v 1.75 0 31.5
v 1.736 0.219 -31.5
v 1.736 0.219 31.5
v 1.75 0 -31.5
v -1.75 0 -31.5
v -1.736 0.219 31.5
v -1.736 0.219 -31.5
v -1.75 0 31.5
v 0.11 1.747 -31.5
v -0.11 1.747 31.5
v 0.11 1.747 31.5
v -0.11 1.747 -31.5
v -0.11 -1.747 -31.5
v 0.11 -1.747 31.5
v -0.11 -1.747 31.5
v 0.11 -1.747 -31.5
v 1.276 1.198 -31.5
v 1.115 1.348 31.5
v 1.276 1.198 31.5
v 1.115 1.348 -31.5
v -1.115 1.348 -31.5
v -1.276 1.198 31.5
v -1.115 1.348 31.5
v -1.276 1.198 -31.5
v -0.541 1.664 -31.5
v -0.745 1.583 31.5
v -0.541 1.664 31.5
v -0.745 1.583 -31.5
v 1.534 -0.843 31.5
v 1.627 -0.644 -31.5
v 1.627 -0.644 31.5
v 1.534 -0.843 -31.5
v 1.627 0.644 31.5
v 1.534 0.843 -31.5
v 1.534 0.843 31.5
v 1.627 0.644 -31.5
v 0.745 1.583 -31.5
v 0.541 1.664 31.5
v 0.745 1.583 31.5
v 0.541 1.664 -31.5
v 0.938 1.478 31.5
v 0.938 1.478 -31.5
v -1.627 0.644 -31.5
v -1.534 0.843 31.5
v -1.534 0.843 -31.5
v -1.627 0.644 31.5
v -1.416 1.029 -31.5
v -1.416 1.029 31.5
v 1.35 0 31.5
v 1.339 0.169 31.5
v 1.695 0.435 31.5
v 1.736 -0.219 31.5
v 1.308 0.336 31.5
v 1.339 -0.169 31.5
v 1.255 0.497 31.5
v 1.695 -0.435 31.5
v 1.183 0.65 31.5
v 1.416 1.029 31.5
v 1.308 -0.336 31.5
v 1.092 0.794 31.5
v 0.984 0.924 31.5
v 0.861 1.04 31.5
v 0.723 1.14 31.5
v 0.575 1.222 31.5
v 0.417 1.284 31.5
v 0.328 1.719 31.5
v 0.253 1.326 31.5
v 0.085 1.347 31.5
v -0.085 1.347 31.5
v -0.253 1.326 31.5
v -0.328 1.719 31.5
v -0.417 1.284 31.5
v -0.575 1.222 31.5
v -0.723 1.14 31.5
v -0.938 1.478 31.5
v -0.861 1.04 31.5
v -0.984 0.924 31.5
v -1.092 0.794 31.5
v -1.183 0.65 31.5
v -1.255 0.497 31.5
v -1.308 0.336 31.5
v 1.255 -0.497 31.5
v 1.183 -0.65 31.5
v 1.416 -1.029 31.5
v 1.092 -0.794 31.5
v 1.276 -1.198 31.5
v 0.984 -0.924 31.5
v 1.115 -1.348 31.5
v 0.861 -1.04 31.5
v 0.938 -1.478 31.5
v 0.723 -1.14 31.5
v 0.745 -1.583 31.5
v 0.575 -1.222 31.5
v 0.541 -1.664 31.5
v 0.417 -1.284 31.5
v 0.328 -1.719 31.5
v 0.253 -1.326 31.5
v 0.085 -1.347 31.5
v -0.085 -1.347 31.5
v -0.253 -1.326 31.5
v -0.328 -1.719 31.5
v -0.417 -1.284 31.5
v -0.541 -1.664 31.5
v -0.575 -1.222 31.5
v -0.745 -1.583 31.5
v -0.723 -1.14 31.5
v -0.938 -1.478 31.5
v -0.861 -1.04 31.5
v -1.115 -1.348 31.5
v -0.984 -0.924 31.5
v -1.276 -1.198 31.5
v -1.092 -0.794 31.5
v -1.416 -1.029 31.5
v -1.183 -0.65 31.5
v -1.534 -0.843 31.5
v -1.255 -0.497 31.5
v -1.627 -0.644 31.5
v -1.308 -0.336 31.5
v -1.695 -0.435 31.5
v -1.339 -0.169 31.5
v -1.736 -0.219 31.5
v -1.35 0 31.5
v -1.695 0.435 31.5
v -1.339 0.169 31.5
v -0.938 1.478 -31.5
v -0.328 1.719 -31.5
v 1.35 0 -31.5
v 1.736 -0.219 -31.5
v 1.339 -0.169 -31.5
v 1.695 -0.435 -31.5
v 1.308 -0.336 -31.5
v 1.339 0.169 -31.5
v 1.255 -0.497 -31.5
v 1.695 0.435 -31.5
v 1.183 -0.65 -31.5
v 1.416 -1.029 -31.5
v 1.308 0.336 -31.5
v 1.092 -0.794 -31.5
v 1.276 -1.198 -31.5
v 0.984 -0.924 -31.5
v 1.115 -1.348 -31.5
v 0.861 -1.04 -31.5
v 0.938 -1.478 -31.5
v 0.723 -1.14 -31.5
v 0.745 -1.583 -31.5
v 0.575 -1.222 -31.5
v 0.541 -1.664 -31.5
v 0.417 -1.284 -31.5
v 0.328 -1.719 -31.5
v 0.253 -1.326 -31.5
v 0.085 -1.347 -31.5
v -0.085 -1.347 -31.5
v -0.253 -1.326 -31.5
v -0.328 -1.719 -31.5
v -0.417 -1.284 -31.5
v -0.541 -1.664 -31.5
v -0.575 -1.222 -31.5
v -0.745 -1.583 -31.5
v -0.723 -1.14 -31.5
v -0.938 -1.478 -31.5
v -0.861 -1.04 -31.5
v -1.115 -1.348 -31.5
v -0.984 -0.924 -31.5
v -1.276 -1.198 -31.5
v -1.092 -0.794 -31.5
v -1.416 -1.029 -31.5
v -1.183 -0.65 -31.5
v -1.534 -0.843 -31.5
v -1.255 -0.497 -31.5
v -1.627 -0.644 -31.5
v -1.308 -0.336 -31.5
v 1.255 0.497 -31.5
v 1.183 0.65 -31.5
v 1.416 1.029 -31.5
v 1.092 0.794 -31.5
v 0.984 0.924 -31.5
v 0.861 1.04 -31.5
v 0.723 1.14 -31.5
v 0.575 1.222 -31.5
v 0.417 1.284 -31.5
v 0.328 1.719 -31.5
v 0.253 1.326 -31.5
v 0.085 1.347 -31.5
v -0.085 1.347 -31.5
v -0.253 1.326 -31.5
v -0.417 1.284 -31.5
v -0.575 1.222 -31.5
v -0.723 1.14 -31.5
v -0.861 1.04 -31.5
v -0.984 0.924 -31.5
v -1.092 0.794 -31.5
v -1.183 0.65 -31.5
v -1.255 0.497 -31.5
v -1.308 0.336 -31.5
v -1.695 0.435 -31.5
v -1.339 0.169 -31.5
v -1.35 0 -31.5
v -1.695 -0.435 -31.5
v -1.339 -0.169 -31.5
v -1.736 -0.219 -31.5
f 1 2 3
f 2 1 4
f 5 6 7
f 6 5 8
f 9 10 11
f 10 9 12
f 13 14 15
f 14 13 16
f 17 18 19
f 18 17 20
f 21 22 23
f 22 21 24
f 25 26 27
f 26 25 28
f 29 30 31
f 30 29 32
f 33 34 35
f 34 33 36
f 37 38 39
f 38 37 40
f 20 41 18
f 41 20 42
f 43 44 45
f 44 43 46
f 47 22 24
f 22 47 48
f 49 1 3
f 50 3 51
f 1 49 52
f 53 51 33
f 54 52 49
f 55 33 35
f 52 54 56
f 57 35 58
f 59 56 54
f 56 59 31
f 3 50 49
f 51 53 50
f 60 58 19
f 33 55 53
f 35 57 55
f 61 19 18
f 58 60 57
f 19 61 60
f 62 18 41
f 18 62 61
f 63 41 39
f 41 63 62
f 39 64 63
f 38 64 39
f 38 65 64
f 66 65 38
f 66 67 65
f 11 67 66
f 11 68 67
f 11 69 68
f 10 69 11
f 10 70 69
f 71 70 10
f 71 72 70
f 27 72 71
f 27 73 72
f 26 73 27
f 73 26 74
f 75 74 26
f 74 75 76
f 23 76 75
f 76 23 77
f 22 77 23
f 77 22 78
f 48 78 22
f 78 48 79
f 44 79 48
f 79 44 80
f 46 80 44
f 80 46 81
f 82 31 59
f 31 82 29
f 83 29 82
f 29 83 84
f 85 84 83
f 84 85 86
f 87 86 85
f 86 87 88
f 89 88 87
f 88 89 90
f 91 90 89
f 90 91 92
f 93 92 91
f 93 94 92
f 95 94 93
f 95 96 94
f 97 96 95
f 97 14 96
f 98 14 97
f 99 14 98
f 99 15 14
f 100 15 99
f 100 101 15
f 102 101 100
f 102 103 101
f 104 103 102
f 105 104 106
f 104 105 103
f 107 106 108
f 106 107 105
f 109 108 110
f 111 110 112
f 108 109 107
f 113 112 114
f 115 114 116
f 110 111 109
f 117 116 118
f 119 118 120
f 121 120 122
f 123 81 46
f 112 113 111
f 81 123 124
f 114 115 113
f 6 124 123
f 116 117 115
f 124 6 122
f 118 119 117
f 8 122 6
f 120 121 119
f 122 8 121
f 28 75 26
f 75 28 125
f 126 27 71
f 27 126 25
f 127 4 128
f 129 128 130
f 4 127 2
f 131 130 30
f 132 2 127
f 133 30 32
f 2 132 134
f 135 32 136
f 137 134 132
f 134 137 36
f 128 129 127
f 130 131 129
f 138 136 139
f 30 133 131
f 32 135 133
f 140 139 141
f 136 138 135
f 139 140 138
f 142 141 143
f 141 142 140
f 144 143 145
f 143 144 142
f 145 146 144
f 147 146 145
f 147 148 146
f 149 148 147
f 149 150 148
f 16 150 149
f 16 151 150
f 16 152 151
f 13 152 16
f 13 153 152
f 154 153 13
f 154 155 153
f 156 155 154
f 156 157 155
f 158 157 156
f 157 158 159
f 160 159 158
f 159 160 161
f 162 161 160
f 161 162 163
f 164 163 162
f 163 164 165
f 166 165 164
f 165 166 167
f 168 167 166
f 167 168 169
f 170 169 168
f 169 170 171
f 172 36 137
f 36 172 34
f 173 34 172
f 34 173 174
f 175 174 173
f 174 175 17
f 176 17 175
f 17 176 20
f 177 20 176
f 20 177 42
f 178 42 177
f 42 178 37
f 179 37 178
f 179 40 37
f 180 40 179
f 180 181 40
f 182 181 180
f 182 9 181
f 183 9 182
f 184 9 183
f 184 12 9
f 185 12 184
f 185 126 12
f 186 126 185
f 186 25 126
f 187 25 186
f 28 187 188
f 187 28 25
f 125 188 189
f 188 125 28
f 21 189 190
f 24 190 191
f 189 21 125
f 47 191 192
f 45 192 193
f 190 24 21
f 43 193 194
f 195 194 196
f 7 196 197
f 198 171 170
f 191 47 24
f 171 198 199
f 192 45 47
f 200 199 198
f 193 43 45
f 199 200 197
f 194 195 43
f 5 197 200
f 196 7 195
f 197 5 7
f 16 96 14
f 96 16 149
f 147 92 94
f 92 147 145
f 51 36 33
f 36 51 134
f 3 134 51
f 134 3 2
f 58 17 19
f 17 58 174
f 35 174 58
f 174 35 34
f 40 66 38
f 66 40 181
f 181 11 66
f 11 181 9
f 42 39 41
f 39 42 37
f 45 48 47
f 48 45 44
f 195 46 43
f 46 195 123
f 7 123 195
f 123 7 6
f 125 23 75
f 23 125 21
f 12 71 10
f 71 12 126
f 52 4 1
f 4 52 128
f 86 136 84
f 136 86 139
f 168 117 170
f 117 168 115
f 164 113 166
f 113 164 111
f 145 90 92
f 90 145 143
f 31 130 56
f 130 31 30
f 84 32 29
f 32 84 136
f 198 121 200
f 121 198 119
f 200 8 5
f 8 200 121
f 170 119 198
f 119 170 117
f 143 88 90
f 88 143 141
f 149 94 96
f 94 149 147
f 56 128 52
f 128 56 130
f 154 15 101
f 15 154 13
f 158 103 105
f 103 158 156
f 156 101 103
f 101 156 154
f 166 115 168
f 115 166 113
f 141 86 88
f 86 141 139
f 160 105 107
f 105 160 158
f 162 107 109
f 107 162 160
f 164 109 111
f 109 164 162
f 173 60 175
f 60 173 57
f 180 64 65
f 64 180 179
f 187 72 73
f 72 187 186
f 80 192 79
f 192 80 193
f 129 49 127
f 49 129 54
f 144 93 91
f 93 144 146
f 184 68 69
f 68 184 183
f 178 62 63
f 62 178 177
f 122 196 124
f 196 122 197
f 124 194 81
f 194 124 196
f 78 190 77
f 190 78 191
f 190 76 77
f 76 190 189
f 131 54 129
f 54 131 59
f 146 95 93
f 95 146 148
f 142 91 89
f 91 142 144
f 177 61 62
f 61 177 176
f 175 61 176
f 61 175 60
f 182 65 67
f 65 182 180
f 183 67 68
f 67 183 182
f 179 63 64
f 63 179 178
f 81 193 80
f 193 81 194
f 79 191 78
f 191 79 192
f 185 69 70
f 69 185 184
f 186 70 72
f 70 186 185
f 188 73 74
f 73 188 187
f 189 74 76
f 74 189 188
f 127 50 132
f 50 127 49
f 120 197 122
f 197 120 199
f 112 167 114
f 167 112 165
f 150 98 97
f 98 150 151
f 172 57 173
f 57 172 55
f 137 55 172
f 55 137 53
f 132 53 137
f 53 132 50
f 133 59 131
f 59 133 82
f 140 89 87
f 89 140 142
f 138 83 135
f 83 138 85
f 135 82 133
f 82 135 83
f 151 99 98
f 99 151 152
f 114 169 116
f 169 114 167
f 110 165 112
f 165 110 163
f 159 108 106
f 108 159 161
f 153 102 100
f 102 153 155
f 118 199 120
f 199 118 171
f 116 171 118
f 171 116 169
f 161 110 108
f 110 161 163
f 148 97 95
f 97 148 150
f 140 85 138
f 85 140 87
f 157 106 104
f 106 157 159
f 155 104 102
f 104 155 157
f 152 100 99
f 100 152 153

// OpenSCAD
$fn = 50;


difference() {
	union() {
		translate(v = [0, 0, -31.5000000000]) {
			cylinder(h = 63, r = 1.7500000000);
		}
	}
	union() {
		translate(v = [0, 0, -100.0000000000]) {
			cylinder(h = 200, r = 1.3500000000);
		}
	}
}
